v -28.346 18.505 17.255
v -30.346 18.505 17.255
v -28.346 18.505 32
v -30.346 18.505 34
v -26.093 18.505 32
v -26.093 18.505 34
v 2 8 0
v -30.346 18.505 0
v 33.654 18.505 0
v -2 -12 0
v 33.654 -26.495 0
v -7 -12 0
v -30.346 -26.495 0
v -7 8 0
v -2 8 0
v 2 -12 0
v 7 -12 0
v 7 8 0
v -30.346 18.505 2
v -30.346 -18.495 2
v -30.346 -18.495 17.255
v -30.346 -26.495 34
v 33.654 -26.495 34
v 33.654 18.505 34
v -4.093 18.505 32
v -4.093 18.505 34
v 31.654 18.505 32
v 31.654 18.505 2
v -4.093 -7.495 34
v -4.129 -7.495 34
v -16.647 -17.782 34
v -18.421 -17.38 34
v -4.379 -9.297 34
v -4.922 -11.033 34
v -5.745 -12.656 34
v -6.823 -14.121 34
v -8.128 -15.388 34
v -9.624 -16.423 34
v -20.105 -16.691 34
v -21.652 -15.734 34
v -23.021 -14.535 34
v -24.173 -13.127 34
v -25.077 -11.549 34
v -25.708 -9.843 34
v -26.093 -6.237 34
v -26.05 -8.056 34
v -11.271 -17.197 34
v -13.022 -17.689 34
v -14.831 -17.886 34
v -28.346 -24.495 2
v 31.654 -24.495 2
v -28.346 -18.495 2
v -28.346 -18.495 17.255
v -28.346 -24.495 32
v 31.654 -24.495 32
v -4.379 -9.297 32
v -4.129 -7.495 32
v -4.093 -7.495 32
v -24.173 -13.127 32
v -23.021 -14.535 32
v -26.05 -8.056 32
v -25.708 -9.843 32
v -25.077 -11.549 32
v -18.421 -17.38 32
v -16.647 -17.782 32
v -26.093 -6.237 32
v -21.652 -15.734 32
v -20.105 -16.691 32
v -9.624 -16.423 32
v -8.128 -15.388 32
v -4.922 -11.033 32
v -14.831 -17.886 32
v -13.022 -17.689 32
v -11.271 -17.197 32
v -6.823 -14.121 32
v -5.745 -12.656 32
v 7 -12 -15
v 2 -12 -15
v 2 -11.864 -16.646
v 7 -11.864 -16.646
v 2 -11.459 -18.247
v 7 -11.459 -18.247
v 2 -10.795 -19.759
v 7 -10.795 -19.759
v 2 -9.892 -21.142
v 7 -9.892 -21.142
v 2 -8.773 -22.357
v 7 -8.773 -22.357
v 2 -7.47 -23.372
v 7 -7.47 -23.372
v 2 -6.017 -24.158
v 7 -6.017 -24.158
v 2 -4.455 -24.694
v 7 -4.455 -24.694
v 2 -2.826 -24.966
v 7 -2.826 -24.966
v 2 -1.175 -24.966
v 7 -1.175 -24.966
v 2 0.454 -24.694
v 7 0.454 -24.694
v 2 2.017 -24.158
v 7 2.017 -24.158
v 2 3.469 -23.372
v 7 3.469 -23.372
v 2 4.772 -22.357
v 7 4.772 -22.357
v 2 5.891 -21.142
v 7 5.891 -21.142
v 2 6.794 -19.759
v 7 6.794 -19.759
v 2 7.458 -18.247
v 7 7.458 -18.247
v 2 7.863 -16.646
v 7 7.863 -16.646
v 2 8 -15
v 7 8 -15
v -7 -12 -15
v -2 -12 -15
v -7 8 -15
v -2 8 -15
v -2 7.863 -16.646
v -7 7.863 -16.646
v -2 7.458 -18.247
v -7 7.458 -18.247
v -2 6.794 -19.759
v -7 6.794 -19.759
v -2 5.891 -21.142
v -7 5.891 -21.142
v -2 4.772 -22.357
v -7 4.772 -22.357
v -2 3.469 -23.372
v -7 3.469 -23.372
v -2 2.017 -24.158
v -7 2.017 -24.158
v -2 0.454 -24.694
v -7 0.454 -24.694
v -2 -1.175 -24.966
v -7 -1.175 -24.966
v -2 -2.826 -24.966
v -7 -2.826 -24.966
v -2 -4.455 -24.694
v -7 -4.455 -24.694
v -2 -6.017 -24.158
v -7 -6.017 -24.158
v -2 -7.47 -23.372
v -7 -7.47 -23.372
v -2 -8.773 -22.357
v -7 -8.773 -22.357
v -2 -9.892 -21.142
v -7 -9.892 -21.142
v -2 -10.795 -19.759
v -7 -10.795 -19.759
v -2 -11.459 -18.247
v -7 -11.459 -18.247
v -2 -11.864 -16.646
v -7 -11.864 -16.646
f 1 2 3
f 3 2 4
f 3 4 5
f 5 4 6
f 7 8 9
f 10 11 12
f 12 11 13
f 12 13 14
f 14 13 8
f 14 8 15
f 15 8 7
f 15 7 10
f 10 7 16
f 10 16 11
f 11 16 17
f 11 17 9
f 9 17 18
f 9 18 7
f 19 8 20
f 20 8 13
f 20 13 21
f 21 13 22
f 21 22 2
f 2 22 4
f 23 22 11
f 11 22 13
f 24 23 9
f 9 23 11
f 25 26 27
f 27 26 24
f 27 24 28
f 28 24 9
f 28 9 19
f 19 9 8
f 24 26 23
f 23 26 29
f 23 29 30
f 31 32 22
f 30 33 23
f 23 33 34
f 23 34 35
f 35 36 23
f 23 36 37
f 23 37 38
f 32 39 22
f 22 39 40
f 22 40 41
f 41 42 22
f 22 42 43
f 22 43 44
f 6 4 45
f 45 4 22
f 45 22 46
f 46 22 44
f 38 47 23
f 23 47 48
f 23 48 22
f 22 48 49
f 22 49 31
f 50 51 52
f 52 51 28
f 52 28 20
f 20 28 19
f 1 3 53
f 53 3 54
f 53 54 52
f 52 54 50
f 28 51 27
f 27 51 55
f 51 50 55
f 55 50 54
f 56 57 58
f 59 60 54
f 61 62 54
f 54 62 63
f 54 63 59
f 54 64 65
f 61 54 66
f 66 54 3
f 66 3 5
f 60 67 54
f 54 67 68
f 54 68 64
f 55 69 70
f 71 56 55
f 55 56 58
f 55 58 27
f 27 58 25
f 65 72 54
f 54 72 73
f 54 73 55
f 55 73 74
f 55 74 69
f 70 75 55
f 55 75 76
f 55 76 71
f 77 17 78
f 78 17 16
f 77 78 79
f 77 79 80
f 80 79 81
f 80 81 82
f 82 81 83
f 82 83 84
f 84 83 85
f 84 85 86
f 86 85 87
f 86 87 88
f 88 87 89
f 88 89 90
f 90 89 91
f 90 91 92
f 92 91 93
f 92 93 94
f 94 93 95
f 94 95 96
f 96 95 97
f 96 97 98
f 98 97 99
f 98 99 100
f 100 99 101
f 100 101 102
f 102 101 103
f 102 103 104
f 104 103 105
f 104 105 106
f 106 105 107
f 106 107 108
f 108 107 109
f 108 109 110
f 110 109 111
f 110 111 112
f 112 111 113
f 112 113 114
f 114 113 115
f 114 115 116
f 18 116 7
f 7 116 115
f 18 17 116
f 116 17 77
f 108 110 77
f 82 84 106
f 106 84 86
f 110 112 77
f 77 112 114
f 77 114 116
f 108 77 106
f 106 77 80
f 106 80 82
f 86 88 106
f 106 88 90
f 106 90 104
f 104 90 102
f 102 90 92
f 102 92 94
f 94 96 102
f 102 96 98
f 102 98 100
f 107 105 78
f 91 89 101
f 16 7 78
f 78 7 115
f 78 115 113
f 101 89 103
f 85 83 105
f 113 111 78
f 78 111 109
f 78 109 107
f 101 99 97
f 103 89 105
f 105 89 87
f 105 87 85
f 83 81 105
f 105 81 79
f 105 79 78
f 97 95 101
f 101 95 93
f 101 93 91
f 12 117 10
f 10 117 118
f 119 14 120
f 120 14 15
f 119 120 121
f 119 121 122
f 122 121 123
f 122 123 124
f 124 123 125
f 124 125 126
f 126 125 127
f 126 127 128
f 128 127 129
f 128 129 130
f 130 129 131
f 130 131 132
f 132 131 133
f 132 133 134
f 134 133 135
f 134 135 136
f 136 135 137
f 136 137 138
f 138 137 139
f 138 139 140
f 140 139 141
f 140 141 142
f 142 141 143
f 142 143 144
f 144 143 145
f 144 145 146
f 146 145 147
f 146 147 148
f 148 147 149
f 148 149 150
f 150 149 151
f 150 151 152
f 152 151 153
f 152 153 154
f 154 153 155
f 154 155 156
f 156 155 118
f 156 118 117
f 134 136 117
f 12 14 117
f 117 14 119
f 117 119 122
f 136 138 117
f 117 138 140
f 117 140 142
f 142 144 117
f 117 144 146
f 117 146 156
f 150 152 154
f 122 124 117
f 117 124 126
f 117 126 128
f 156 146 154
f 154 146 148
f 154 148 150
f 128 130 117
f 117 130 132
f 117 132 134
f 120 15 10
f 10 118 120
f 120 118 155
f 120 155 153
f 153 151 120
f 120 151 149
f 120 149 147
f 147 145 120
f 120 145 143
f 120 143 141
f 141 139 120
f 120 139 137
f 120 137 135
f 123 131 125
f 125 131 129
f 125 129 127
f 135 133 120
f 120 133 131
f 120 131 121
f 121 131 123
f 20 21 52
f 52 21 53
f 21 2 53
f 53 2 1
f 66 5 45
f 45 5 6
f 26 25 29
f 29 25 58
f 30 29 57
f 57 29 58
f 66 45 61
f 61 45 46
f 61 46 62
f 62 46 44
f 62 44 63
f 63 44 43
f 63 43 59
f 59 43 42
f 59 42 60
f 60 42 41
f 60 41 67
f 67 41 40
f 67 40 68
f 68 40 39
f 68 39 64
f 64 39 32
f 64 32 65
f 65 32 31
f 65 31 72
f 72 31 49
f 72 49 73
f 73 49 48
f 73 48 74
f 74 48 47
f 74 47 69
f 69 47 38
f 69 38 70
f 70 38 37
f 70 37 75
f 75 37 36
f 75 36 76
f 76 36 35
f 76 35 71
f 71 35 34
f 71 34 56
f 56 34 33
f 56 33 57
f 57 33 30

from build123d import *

# Parameters (mm, degrees)
SKETCH1_W           = 64
SKETCH1_H           = 45
BOSS_EXTRUDE1_DEPTH = 34
CUT_EXTRUDE2_START  = -2
SKETCH3_W           = 60
SKETCH3_H           = 41
CUT_EXTRUDE2_DEPTH  = 27
SKETCH4_W           = 60
SKETCH4_H           = 30
CUT_EXTRUDE3_DEPTH  = 43
BOSS_EXTRUDE2_START = 2
BOSS_EXTRUDE2_DEPTH = 5
BOSS_EXTRUDE3_START = -7
BOSS_EXTRUDE3_DEPTH = 5
SKETCH10_W          = 15.255500618
SKETCH10_H          = 37
CUT_EXTRUDE5_DEPTH  = 2
SKETCH15_W          = 22
SKETCH15_H          = 26
CUT_EXTRUDE6_DEPTH  = 10
SKETCH20_R          = 11
CUT_EXTRUDE7_DEPTH  = 10


with BuildPart() as part:
    # Sketch1 → Boss-Extrude1 (new body)
    with BuildSketch(Plane.XY):
        with Locations((1.653781513, -3.994957983)):
            Rectangle(SKETCH1_W, SKETCH1_H)
    extrude(amount=BOSS_EXTRUDE1_DEPTH)

    # Sketch3 → Cut-Extrude2 (cut)
    with BuildSketch(Plane.XY.offset(34).offset(CUT_EXTRUDE2_START)):
        with Locations((1.653781513, -3.994957983)):
            Rectangle(SKETCH3_W, SKETCH3_H)
    extrude(amount=-CUT_EXTRUDE2_DEPTH, mode=Mode.SUBTRACT)

    # Sketch4 → Cut-Extrude3 (cut)
    with BuildSketch(Plane(origin=(0, 18.505042017, 0), x_dir=(1, 0, 0), z_dir=(0, 1, 0))):
        with Locations((1.653781513, -17)):
            Rectangle(SKETCH4_W, SKETCH4_H)
    extrude(amount=-CUT_EXTRUDE3_DEPTH, mode=Mode.SUBTRACT)

    # Sketch7 → Boss-Extrude2 (add)
    with BuildSketch(Plane(origin=(0, 0, 0), x_dir=(0, 0, -1), z_dir=(1, 0, 0)).offset(BOSS_EXTRUDE2_START)):
        with BuildLine():
            Line((0, 7.999642933), (15, 7.999642933))
            ThreePointArc((15, 7.999642933), (25, -2.000357067), (15, -12.000357067))
            Line((15, -12.000357067), (0, -12.000357067))
            Line((0, -12.000357067), (0, 7.999642933))
        make_face()
    extrude(amount=BOSS_EXTRUDE2_DEPTH)

    # Sketch8 → Boss-Extrude3 (add)
    with BuildSketch(Plane(origin=(0, 0, 0), x_dir=(0, 0, -1), z_dir=(1, 0, 0)).offset(BOSS_EXTRUDE3_START)):
        with BuildLine():
            Line((0, -12.000357067), (0, 7.999642933))
            Line((0, 7.999642933), (15, 7.999642933))
            ThreePointArc((15, 7.999642933), (25, -2.000357067), (15, -12.000357067))
            Line((15, -12.000357067), (0, -12.000357067))
        make_face()
    extrude(amount=BOSS_EXTRUDE3_DEPTH)

    # Sketch10 → Cut-Extrude5 (cut)
    with BuildSketch(Plane.ZY.offset(30.346218487)):
        with Locations((9.627750309, 0.005042017)):
            Rectangle(SKETCH10_W, SKETCH10_H)
    extrude(amount=-CUT_EXTRUDE5_DEPTH, mode=Mode.SUBTRACT)

    # Sketch15 → Cut-Extrude6 (cut)
    with BuildSketch(Plane.XY.offset(34)):
        with Locations((-15.092768172, 5.505042017)):
            Rectangle(SKETCH15_W, SKETCH15_H)
    extrude(amount=-CUT_EXTRUDE6_DEPTH, mode=Mode.SUBTRACT)

    # Sketch20 → Cut-Extrude7 (cut)
    with BuildSketch(Plane.XY.offset(34)):
        with Locations((-15.112148053, -6.889817492)):
            Circle(SKETCH20_R)
    extrude(amount=-CUT_EXTRUDE7_DEPTH, mode=Mode.SUBTRACT)


solid = part.part
